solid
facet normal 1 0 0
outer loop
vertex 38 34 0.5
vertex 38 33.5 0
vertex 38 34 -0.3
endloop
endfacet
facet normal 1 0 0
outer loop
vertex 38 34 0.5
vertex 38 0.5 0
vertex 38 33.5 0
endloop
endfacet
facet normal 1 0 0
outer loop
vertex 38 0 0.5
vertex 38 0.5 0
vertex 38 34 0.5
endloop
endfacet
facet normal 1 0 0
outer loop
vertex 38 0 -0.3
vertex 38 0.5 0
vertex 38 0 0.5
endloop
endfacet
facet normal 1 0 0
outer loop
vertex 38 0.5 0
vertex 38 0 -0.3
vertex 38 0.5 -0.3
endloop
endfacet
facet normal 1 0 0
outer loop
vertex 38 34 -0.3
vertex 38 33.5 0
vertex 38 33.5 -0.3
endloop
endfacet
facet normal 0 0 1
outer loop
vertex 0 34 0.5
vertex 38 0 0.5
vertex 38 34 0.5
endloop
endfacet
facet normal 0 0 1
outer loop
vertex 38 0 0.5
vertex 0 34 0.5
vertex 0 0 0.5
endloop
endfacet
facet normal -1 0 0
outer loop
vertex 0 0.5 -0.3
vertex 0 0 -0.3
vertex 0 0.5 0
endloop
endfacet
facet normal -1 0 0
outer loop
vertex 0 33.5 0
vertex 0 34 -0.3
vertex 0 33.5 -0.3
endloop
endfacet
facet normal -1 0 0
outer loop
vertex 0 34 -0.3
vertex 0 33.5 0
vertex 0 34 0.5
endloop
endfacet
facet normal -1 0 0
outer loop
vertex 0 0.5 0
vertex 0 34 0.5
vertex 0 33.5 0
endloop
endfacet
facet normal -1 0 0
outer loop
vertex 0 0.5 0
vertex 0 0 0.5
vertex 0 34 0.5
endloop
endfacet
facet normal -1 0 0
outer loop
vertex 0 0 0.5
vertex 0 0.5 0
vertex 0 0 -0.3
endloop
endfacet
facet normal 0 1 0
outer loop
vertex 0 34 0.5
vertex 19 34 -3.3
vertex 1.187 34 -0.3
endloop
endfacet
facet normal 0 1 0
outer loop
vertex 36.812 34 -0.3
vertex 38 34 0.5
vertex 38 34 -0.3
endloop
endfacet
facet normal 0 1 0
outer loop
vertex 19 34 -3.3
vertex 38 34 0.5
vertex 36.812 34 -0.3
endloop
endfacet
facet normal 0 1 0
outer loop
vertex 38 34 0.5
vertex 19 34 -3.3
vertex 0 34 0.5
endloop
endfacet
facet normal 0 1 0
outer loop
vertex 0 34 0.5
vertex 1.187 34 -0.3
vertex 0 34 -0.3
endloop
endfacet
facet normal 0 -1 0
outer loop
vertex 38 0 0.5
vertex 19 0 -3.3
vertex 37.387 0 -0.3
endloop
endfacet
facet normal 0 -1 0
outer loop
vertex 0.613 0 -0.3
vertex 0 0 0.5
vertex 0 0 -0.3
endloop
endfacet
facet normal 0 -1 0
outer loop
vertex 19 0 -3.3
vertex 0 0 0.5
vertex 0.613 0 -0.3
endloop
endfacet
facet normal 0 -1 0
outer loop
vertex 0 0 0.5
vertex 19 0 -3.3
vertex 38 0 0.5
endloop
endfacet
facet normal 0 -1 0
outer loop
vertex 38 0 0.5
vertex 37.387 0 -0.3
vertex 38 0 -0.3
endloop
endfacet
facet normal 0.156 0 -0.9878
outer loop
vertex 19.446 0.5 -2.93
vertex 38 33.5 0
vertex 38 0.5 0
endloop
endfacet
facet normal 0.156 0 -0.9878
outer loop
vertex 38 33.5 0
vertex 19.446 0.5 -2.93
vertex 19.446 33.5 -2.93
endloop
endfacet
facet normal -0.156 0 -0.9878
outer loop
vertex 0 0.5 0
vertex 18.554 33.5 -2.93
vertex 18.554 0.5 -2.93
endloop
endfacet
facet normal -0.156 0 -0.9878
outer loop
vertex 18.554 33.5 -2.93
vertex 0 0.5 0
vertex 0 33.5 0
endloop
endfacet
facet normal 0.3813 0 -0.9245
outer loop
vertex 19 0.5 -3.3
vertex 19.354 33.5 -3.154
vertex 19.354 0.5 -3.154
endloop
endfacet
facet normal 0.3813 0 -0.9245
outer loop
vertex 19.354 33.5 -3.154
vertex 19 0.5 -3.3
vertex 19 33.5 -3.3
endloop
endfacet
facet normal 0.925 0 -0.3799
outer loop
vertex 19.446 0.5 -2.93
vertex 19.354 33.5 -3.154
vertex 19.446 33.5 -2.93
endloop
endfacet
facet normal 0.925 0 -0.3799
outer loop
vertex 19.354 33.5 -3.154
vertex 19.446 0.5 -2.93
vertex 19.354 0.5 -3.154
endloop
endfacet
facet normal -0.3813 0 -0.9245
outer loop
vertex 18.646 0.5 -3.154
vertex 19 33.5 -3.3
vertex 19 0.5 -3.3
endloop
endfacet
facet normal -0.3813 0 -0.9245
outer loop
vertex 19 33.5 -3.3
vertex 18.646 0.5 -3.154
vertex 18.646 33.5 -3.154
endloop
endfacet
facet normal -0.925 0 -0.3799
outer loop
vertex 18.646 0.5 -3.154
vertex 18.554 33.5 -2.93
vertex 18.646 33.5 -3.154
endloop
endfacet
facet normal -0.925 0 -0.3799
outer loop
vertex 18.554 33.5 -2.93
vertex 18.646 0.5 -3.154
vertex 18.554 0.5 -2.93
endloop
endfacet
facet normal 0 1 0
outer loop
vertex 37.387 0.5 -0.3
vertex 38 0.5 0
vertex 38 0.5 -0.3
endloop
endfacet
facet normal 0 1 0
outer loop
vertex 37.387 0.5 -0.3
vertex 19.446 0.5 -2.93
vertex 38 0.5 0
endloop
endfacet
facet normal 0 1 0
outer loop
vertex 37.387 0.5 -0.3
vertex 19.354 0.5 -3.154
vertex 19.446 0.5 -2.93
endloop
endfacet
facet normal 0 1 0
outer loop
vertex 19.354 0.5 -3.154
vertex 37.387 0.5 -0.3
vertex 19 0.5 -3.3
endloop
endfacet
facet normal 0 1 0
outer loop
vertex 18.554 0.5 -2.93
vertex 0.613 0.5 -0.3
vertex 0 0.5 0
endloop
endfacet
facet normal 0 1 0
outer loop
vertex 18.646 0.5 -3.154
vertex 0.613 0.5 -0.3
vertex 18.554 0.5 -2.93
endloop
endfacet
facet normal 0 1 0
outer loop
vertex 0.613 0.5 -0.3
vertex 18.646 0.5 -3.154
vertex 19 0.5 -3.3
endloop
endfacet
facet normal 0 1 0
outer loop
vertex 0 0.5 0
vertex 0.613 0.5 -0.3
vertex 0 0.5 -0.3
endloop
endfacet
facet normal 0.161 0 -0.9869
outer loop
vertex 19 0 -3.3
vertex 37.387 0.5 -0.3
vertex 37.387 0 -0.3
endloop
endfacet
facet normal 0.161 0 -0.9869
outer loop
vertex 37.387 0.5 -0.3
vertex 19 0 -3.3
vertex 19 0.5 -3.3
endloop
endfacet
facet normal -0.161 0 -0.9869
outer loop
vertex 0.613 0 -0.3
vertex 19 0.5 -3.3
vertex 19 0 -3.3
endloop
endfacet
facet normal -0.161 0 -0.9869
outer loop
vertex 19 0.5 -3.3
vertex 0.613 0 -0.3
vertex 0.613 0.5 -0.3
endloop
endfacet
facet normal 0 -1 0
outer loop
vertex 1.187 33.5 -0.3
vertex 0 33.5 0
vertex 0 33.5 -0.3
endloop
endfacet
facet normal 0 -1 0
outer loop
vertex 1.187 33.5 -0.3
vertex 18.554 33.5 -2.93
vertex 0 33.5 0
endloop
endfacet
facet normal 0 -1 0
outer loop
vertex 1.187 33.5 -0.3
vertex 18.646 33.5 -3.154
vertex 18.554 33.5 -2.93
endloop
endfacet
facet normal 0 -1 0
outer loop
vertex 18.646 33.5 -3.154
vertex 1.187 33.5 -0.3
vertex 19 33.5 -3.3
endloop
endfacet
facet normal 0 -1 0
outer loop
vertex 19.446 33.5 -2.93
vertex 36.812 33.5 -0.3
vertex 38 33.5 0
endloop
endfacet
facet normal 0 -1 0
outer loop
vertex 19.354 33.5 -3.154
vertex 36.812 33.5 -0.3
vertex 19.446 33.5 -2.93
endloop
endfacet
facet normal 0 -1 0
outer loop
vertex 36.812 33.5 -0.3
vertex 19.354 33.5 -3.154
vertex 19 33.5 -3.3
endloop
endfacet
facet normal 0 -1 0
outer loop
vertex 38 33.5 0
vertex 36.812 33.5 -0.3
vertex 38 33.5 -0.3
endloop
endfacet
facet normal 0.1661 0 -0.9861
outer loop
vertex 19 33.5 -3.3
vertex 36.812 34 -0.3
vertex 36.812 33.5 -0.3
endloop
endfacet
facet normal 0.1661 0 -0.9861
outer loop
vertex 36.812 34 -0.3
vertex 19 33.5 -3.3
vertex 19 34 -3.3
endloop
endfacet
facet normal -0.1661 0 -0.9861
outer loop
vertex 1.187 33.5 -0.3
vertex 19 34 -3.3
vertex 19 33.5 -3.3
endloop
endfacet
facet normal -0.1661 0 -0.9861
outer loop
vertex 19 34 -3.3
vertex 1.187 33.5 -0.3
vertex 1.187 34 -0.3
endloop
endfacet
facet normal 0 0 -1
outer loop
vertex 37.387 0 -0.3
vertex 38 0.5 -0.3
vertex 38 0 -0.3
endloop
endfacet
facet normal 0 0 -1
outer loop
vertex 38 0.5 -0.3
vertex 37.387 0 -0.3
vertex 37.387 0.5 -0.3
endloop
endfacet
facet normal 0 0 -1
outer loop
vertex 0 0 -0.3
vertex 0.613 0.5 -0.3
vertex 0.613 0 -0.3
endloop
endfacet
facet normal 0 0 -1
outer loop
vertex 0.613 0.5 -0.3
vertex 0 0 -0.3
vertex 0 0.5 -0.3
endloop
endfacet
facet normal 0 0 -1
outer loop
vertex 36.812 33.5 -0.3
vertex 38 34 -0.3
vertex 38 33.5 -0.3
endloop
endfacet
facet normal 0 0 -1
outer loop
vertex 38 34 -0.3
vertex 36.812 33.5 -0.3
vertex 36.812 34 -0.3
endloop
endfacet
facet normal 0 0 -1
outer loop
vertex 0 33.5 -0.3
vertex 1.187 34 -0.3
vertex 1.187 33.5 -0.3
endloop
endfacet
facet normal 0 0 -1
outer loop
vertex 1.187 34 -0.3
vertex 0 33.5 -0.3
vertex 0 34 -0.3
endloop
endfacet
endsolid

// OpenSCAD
// file: mod_prism.scad
/// @file mod_prism.scad
///
/// @author © Dave Harris 2022
///

// points   1        ^
//        / | \      |
//       /  4  \     h
//      /  / \  \    |
//     0--/---\--2   v
//   w | /     \ | 
//     3---------5
//     <lLH><lRH>


module prism(h=20, lLH=15, lRH=25, w=1)
{
 polyhedron(
  points=[
   [0, 0, 0]       // 0 back LH corner
  ,[lLH, h, 0]     // 1 back peak
  ,[lLH+lRH, 0, 0] // 2 back RH corner
  ,[0, 0, w]       // 3 front LH corner
  ,[lLH, h, w]     // 4 front peak
  ,[lLH+lRH, 0, w] // 5 front RH corner
  ]
  , faces=[
    [0, 3, 5, 2] // bottom
   ,[0, 1, 4, 3] // LH ramp
   ,[1, 2, 5, 4] // RH ramp 
   ,[2, 1, 0]    // back wall
   ,[3, 4, 5]    // front wall
   ]
 );
} // end of module prism()

// local test prism
// prism(lLH=1, lRH= 22, h=18, w=1 );

// eof
// file: fb_globals.scad
/// @file fb_globals.scad
///
/// @brief project footbridge globals
///
/// @author © Dave Harris 2022
///

$fa = 1;   // Fragment angle
$fs = 0.4; // Fragment size resolution

// global constants
//------------------

H_bridge = 49.5; // platform to bridge
W_bridge = 36;   // width of bridge
                 // wider than walkway
                 
H_walk   = 36;   // height of walkway
W_walk   = 34.7; // width of walkway

Steps    = 27;   // number of steps
W_stairs = 32;   // width ~ 9'6" @ H0
L_tread  = 3.5;  // tread ~ 12" @ H0
L_stairs = L_tread * (Steps +1);
H_rise   = H_bridge / (Steps +1); 
  // rise is 1.7678, not H0 1.75 (6")

W_lift   = 34;

W_build  = W_stairs +2;
L_build  = L_stairs+W_bridge+W_lift +2;


H_door   = 28;
W_door   = 18;

H_window = 6;
W_window = 16;


W_plat45  = 93.9;
W_track34 = 87.9;
W_plat23  = 93.8;
W_track12 = 87.9;

W_plat23edge =
   ( W_plat23 - W_stairs +2 ) /2 ;
W_plat45edge =
   ( W_plat45 - W_stairs +2 ) /2 ;
   
L_span34 = W_track34 + W_plat45edge + W_plat23edge;


// eof
// main file
/// @file fb_centreroof.scad
///
/// @brief footbridge central roof
///
/// @author © Dave Harris 2022
/// 
///


include <fb_globals.scad>;
include <mod_prism.scad>;

translate(
  [ 0
  , 0
  , -0.00 ]
) cube(
    [ W_bridge +2
    , W_stairs +2
    , 0.5  ]
  );

rotate(
 [ -90
 , 0
 , 0 ]
) prism(
    h   = 3
  , w   = W_stairs +2
  , lLH = W_bridge/2 +1
  , lRH = W_bridge/2 +1
);

translate(
  [ W_bridge/2 +1
  , 0
  , -2.8  ]
) rotate(
     [ -90
     , 0
     , 0  ]
  ) cylinder(
        h = W_stairs +2
      , r = 0.5
    );

translate(
  [ 0
  , 0
  , -0.2 ]
) rotate(
     [ -90
     , 0
     , 0 ]
    ) prism(
        h   = 3.1
      , w   = 0.5
      , lLH = W_bridge/2 +1
      , lRH = W_bridge/2 +1
    );

translate(
  [ 0
  , W_stairs + 1.5
  , -0.1 ]
) rotate(
     [ -90
     , 0
     , 0 ]
    ) prism(
        h   = 3.2
      , w   = 0.5
      , lLH = W_bridge/2 +1
      , lRH = W_bridge/2 +1
    );

translate(
  [ 0
  , 0
  , -0.3 ]
) cube(
    [ W_bridge +2
    , 0.5
    , 0.6  ]
  );
translate(
  [ 0
  , W_stairs +1.5
  , -0.3 ]
) cube(
    [ W_bridge +2
    , 0.5
    , 0.6  ]
  );

// eof
